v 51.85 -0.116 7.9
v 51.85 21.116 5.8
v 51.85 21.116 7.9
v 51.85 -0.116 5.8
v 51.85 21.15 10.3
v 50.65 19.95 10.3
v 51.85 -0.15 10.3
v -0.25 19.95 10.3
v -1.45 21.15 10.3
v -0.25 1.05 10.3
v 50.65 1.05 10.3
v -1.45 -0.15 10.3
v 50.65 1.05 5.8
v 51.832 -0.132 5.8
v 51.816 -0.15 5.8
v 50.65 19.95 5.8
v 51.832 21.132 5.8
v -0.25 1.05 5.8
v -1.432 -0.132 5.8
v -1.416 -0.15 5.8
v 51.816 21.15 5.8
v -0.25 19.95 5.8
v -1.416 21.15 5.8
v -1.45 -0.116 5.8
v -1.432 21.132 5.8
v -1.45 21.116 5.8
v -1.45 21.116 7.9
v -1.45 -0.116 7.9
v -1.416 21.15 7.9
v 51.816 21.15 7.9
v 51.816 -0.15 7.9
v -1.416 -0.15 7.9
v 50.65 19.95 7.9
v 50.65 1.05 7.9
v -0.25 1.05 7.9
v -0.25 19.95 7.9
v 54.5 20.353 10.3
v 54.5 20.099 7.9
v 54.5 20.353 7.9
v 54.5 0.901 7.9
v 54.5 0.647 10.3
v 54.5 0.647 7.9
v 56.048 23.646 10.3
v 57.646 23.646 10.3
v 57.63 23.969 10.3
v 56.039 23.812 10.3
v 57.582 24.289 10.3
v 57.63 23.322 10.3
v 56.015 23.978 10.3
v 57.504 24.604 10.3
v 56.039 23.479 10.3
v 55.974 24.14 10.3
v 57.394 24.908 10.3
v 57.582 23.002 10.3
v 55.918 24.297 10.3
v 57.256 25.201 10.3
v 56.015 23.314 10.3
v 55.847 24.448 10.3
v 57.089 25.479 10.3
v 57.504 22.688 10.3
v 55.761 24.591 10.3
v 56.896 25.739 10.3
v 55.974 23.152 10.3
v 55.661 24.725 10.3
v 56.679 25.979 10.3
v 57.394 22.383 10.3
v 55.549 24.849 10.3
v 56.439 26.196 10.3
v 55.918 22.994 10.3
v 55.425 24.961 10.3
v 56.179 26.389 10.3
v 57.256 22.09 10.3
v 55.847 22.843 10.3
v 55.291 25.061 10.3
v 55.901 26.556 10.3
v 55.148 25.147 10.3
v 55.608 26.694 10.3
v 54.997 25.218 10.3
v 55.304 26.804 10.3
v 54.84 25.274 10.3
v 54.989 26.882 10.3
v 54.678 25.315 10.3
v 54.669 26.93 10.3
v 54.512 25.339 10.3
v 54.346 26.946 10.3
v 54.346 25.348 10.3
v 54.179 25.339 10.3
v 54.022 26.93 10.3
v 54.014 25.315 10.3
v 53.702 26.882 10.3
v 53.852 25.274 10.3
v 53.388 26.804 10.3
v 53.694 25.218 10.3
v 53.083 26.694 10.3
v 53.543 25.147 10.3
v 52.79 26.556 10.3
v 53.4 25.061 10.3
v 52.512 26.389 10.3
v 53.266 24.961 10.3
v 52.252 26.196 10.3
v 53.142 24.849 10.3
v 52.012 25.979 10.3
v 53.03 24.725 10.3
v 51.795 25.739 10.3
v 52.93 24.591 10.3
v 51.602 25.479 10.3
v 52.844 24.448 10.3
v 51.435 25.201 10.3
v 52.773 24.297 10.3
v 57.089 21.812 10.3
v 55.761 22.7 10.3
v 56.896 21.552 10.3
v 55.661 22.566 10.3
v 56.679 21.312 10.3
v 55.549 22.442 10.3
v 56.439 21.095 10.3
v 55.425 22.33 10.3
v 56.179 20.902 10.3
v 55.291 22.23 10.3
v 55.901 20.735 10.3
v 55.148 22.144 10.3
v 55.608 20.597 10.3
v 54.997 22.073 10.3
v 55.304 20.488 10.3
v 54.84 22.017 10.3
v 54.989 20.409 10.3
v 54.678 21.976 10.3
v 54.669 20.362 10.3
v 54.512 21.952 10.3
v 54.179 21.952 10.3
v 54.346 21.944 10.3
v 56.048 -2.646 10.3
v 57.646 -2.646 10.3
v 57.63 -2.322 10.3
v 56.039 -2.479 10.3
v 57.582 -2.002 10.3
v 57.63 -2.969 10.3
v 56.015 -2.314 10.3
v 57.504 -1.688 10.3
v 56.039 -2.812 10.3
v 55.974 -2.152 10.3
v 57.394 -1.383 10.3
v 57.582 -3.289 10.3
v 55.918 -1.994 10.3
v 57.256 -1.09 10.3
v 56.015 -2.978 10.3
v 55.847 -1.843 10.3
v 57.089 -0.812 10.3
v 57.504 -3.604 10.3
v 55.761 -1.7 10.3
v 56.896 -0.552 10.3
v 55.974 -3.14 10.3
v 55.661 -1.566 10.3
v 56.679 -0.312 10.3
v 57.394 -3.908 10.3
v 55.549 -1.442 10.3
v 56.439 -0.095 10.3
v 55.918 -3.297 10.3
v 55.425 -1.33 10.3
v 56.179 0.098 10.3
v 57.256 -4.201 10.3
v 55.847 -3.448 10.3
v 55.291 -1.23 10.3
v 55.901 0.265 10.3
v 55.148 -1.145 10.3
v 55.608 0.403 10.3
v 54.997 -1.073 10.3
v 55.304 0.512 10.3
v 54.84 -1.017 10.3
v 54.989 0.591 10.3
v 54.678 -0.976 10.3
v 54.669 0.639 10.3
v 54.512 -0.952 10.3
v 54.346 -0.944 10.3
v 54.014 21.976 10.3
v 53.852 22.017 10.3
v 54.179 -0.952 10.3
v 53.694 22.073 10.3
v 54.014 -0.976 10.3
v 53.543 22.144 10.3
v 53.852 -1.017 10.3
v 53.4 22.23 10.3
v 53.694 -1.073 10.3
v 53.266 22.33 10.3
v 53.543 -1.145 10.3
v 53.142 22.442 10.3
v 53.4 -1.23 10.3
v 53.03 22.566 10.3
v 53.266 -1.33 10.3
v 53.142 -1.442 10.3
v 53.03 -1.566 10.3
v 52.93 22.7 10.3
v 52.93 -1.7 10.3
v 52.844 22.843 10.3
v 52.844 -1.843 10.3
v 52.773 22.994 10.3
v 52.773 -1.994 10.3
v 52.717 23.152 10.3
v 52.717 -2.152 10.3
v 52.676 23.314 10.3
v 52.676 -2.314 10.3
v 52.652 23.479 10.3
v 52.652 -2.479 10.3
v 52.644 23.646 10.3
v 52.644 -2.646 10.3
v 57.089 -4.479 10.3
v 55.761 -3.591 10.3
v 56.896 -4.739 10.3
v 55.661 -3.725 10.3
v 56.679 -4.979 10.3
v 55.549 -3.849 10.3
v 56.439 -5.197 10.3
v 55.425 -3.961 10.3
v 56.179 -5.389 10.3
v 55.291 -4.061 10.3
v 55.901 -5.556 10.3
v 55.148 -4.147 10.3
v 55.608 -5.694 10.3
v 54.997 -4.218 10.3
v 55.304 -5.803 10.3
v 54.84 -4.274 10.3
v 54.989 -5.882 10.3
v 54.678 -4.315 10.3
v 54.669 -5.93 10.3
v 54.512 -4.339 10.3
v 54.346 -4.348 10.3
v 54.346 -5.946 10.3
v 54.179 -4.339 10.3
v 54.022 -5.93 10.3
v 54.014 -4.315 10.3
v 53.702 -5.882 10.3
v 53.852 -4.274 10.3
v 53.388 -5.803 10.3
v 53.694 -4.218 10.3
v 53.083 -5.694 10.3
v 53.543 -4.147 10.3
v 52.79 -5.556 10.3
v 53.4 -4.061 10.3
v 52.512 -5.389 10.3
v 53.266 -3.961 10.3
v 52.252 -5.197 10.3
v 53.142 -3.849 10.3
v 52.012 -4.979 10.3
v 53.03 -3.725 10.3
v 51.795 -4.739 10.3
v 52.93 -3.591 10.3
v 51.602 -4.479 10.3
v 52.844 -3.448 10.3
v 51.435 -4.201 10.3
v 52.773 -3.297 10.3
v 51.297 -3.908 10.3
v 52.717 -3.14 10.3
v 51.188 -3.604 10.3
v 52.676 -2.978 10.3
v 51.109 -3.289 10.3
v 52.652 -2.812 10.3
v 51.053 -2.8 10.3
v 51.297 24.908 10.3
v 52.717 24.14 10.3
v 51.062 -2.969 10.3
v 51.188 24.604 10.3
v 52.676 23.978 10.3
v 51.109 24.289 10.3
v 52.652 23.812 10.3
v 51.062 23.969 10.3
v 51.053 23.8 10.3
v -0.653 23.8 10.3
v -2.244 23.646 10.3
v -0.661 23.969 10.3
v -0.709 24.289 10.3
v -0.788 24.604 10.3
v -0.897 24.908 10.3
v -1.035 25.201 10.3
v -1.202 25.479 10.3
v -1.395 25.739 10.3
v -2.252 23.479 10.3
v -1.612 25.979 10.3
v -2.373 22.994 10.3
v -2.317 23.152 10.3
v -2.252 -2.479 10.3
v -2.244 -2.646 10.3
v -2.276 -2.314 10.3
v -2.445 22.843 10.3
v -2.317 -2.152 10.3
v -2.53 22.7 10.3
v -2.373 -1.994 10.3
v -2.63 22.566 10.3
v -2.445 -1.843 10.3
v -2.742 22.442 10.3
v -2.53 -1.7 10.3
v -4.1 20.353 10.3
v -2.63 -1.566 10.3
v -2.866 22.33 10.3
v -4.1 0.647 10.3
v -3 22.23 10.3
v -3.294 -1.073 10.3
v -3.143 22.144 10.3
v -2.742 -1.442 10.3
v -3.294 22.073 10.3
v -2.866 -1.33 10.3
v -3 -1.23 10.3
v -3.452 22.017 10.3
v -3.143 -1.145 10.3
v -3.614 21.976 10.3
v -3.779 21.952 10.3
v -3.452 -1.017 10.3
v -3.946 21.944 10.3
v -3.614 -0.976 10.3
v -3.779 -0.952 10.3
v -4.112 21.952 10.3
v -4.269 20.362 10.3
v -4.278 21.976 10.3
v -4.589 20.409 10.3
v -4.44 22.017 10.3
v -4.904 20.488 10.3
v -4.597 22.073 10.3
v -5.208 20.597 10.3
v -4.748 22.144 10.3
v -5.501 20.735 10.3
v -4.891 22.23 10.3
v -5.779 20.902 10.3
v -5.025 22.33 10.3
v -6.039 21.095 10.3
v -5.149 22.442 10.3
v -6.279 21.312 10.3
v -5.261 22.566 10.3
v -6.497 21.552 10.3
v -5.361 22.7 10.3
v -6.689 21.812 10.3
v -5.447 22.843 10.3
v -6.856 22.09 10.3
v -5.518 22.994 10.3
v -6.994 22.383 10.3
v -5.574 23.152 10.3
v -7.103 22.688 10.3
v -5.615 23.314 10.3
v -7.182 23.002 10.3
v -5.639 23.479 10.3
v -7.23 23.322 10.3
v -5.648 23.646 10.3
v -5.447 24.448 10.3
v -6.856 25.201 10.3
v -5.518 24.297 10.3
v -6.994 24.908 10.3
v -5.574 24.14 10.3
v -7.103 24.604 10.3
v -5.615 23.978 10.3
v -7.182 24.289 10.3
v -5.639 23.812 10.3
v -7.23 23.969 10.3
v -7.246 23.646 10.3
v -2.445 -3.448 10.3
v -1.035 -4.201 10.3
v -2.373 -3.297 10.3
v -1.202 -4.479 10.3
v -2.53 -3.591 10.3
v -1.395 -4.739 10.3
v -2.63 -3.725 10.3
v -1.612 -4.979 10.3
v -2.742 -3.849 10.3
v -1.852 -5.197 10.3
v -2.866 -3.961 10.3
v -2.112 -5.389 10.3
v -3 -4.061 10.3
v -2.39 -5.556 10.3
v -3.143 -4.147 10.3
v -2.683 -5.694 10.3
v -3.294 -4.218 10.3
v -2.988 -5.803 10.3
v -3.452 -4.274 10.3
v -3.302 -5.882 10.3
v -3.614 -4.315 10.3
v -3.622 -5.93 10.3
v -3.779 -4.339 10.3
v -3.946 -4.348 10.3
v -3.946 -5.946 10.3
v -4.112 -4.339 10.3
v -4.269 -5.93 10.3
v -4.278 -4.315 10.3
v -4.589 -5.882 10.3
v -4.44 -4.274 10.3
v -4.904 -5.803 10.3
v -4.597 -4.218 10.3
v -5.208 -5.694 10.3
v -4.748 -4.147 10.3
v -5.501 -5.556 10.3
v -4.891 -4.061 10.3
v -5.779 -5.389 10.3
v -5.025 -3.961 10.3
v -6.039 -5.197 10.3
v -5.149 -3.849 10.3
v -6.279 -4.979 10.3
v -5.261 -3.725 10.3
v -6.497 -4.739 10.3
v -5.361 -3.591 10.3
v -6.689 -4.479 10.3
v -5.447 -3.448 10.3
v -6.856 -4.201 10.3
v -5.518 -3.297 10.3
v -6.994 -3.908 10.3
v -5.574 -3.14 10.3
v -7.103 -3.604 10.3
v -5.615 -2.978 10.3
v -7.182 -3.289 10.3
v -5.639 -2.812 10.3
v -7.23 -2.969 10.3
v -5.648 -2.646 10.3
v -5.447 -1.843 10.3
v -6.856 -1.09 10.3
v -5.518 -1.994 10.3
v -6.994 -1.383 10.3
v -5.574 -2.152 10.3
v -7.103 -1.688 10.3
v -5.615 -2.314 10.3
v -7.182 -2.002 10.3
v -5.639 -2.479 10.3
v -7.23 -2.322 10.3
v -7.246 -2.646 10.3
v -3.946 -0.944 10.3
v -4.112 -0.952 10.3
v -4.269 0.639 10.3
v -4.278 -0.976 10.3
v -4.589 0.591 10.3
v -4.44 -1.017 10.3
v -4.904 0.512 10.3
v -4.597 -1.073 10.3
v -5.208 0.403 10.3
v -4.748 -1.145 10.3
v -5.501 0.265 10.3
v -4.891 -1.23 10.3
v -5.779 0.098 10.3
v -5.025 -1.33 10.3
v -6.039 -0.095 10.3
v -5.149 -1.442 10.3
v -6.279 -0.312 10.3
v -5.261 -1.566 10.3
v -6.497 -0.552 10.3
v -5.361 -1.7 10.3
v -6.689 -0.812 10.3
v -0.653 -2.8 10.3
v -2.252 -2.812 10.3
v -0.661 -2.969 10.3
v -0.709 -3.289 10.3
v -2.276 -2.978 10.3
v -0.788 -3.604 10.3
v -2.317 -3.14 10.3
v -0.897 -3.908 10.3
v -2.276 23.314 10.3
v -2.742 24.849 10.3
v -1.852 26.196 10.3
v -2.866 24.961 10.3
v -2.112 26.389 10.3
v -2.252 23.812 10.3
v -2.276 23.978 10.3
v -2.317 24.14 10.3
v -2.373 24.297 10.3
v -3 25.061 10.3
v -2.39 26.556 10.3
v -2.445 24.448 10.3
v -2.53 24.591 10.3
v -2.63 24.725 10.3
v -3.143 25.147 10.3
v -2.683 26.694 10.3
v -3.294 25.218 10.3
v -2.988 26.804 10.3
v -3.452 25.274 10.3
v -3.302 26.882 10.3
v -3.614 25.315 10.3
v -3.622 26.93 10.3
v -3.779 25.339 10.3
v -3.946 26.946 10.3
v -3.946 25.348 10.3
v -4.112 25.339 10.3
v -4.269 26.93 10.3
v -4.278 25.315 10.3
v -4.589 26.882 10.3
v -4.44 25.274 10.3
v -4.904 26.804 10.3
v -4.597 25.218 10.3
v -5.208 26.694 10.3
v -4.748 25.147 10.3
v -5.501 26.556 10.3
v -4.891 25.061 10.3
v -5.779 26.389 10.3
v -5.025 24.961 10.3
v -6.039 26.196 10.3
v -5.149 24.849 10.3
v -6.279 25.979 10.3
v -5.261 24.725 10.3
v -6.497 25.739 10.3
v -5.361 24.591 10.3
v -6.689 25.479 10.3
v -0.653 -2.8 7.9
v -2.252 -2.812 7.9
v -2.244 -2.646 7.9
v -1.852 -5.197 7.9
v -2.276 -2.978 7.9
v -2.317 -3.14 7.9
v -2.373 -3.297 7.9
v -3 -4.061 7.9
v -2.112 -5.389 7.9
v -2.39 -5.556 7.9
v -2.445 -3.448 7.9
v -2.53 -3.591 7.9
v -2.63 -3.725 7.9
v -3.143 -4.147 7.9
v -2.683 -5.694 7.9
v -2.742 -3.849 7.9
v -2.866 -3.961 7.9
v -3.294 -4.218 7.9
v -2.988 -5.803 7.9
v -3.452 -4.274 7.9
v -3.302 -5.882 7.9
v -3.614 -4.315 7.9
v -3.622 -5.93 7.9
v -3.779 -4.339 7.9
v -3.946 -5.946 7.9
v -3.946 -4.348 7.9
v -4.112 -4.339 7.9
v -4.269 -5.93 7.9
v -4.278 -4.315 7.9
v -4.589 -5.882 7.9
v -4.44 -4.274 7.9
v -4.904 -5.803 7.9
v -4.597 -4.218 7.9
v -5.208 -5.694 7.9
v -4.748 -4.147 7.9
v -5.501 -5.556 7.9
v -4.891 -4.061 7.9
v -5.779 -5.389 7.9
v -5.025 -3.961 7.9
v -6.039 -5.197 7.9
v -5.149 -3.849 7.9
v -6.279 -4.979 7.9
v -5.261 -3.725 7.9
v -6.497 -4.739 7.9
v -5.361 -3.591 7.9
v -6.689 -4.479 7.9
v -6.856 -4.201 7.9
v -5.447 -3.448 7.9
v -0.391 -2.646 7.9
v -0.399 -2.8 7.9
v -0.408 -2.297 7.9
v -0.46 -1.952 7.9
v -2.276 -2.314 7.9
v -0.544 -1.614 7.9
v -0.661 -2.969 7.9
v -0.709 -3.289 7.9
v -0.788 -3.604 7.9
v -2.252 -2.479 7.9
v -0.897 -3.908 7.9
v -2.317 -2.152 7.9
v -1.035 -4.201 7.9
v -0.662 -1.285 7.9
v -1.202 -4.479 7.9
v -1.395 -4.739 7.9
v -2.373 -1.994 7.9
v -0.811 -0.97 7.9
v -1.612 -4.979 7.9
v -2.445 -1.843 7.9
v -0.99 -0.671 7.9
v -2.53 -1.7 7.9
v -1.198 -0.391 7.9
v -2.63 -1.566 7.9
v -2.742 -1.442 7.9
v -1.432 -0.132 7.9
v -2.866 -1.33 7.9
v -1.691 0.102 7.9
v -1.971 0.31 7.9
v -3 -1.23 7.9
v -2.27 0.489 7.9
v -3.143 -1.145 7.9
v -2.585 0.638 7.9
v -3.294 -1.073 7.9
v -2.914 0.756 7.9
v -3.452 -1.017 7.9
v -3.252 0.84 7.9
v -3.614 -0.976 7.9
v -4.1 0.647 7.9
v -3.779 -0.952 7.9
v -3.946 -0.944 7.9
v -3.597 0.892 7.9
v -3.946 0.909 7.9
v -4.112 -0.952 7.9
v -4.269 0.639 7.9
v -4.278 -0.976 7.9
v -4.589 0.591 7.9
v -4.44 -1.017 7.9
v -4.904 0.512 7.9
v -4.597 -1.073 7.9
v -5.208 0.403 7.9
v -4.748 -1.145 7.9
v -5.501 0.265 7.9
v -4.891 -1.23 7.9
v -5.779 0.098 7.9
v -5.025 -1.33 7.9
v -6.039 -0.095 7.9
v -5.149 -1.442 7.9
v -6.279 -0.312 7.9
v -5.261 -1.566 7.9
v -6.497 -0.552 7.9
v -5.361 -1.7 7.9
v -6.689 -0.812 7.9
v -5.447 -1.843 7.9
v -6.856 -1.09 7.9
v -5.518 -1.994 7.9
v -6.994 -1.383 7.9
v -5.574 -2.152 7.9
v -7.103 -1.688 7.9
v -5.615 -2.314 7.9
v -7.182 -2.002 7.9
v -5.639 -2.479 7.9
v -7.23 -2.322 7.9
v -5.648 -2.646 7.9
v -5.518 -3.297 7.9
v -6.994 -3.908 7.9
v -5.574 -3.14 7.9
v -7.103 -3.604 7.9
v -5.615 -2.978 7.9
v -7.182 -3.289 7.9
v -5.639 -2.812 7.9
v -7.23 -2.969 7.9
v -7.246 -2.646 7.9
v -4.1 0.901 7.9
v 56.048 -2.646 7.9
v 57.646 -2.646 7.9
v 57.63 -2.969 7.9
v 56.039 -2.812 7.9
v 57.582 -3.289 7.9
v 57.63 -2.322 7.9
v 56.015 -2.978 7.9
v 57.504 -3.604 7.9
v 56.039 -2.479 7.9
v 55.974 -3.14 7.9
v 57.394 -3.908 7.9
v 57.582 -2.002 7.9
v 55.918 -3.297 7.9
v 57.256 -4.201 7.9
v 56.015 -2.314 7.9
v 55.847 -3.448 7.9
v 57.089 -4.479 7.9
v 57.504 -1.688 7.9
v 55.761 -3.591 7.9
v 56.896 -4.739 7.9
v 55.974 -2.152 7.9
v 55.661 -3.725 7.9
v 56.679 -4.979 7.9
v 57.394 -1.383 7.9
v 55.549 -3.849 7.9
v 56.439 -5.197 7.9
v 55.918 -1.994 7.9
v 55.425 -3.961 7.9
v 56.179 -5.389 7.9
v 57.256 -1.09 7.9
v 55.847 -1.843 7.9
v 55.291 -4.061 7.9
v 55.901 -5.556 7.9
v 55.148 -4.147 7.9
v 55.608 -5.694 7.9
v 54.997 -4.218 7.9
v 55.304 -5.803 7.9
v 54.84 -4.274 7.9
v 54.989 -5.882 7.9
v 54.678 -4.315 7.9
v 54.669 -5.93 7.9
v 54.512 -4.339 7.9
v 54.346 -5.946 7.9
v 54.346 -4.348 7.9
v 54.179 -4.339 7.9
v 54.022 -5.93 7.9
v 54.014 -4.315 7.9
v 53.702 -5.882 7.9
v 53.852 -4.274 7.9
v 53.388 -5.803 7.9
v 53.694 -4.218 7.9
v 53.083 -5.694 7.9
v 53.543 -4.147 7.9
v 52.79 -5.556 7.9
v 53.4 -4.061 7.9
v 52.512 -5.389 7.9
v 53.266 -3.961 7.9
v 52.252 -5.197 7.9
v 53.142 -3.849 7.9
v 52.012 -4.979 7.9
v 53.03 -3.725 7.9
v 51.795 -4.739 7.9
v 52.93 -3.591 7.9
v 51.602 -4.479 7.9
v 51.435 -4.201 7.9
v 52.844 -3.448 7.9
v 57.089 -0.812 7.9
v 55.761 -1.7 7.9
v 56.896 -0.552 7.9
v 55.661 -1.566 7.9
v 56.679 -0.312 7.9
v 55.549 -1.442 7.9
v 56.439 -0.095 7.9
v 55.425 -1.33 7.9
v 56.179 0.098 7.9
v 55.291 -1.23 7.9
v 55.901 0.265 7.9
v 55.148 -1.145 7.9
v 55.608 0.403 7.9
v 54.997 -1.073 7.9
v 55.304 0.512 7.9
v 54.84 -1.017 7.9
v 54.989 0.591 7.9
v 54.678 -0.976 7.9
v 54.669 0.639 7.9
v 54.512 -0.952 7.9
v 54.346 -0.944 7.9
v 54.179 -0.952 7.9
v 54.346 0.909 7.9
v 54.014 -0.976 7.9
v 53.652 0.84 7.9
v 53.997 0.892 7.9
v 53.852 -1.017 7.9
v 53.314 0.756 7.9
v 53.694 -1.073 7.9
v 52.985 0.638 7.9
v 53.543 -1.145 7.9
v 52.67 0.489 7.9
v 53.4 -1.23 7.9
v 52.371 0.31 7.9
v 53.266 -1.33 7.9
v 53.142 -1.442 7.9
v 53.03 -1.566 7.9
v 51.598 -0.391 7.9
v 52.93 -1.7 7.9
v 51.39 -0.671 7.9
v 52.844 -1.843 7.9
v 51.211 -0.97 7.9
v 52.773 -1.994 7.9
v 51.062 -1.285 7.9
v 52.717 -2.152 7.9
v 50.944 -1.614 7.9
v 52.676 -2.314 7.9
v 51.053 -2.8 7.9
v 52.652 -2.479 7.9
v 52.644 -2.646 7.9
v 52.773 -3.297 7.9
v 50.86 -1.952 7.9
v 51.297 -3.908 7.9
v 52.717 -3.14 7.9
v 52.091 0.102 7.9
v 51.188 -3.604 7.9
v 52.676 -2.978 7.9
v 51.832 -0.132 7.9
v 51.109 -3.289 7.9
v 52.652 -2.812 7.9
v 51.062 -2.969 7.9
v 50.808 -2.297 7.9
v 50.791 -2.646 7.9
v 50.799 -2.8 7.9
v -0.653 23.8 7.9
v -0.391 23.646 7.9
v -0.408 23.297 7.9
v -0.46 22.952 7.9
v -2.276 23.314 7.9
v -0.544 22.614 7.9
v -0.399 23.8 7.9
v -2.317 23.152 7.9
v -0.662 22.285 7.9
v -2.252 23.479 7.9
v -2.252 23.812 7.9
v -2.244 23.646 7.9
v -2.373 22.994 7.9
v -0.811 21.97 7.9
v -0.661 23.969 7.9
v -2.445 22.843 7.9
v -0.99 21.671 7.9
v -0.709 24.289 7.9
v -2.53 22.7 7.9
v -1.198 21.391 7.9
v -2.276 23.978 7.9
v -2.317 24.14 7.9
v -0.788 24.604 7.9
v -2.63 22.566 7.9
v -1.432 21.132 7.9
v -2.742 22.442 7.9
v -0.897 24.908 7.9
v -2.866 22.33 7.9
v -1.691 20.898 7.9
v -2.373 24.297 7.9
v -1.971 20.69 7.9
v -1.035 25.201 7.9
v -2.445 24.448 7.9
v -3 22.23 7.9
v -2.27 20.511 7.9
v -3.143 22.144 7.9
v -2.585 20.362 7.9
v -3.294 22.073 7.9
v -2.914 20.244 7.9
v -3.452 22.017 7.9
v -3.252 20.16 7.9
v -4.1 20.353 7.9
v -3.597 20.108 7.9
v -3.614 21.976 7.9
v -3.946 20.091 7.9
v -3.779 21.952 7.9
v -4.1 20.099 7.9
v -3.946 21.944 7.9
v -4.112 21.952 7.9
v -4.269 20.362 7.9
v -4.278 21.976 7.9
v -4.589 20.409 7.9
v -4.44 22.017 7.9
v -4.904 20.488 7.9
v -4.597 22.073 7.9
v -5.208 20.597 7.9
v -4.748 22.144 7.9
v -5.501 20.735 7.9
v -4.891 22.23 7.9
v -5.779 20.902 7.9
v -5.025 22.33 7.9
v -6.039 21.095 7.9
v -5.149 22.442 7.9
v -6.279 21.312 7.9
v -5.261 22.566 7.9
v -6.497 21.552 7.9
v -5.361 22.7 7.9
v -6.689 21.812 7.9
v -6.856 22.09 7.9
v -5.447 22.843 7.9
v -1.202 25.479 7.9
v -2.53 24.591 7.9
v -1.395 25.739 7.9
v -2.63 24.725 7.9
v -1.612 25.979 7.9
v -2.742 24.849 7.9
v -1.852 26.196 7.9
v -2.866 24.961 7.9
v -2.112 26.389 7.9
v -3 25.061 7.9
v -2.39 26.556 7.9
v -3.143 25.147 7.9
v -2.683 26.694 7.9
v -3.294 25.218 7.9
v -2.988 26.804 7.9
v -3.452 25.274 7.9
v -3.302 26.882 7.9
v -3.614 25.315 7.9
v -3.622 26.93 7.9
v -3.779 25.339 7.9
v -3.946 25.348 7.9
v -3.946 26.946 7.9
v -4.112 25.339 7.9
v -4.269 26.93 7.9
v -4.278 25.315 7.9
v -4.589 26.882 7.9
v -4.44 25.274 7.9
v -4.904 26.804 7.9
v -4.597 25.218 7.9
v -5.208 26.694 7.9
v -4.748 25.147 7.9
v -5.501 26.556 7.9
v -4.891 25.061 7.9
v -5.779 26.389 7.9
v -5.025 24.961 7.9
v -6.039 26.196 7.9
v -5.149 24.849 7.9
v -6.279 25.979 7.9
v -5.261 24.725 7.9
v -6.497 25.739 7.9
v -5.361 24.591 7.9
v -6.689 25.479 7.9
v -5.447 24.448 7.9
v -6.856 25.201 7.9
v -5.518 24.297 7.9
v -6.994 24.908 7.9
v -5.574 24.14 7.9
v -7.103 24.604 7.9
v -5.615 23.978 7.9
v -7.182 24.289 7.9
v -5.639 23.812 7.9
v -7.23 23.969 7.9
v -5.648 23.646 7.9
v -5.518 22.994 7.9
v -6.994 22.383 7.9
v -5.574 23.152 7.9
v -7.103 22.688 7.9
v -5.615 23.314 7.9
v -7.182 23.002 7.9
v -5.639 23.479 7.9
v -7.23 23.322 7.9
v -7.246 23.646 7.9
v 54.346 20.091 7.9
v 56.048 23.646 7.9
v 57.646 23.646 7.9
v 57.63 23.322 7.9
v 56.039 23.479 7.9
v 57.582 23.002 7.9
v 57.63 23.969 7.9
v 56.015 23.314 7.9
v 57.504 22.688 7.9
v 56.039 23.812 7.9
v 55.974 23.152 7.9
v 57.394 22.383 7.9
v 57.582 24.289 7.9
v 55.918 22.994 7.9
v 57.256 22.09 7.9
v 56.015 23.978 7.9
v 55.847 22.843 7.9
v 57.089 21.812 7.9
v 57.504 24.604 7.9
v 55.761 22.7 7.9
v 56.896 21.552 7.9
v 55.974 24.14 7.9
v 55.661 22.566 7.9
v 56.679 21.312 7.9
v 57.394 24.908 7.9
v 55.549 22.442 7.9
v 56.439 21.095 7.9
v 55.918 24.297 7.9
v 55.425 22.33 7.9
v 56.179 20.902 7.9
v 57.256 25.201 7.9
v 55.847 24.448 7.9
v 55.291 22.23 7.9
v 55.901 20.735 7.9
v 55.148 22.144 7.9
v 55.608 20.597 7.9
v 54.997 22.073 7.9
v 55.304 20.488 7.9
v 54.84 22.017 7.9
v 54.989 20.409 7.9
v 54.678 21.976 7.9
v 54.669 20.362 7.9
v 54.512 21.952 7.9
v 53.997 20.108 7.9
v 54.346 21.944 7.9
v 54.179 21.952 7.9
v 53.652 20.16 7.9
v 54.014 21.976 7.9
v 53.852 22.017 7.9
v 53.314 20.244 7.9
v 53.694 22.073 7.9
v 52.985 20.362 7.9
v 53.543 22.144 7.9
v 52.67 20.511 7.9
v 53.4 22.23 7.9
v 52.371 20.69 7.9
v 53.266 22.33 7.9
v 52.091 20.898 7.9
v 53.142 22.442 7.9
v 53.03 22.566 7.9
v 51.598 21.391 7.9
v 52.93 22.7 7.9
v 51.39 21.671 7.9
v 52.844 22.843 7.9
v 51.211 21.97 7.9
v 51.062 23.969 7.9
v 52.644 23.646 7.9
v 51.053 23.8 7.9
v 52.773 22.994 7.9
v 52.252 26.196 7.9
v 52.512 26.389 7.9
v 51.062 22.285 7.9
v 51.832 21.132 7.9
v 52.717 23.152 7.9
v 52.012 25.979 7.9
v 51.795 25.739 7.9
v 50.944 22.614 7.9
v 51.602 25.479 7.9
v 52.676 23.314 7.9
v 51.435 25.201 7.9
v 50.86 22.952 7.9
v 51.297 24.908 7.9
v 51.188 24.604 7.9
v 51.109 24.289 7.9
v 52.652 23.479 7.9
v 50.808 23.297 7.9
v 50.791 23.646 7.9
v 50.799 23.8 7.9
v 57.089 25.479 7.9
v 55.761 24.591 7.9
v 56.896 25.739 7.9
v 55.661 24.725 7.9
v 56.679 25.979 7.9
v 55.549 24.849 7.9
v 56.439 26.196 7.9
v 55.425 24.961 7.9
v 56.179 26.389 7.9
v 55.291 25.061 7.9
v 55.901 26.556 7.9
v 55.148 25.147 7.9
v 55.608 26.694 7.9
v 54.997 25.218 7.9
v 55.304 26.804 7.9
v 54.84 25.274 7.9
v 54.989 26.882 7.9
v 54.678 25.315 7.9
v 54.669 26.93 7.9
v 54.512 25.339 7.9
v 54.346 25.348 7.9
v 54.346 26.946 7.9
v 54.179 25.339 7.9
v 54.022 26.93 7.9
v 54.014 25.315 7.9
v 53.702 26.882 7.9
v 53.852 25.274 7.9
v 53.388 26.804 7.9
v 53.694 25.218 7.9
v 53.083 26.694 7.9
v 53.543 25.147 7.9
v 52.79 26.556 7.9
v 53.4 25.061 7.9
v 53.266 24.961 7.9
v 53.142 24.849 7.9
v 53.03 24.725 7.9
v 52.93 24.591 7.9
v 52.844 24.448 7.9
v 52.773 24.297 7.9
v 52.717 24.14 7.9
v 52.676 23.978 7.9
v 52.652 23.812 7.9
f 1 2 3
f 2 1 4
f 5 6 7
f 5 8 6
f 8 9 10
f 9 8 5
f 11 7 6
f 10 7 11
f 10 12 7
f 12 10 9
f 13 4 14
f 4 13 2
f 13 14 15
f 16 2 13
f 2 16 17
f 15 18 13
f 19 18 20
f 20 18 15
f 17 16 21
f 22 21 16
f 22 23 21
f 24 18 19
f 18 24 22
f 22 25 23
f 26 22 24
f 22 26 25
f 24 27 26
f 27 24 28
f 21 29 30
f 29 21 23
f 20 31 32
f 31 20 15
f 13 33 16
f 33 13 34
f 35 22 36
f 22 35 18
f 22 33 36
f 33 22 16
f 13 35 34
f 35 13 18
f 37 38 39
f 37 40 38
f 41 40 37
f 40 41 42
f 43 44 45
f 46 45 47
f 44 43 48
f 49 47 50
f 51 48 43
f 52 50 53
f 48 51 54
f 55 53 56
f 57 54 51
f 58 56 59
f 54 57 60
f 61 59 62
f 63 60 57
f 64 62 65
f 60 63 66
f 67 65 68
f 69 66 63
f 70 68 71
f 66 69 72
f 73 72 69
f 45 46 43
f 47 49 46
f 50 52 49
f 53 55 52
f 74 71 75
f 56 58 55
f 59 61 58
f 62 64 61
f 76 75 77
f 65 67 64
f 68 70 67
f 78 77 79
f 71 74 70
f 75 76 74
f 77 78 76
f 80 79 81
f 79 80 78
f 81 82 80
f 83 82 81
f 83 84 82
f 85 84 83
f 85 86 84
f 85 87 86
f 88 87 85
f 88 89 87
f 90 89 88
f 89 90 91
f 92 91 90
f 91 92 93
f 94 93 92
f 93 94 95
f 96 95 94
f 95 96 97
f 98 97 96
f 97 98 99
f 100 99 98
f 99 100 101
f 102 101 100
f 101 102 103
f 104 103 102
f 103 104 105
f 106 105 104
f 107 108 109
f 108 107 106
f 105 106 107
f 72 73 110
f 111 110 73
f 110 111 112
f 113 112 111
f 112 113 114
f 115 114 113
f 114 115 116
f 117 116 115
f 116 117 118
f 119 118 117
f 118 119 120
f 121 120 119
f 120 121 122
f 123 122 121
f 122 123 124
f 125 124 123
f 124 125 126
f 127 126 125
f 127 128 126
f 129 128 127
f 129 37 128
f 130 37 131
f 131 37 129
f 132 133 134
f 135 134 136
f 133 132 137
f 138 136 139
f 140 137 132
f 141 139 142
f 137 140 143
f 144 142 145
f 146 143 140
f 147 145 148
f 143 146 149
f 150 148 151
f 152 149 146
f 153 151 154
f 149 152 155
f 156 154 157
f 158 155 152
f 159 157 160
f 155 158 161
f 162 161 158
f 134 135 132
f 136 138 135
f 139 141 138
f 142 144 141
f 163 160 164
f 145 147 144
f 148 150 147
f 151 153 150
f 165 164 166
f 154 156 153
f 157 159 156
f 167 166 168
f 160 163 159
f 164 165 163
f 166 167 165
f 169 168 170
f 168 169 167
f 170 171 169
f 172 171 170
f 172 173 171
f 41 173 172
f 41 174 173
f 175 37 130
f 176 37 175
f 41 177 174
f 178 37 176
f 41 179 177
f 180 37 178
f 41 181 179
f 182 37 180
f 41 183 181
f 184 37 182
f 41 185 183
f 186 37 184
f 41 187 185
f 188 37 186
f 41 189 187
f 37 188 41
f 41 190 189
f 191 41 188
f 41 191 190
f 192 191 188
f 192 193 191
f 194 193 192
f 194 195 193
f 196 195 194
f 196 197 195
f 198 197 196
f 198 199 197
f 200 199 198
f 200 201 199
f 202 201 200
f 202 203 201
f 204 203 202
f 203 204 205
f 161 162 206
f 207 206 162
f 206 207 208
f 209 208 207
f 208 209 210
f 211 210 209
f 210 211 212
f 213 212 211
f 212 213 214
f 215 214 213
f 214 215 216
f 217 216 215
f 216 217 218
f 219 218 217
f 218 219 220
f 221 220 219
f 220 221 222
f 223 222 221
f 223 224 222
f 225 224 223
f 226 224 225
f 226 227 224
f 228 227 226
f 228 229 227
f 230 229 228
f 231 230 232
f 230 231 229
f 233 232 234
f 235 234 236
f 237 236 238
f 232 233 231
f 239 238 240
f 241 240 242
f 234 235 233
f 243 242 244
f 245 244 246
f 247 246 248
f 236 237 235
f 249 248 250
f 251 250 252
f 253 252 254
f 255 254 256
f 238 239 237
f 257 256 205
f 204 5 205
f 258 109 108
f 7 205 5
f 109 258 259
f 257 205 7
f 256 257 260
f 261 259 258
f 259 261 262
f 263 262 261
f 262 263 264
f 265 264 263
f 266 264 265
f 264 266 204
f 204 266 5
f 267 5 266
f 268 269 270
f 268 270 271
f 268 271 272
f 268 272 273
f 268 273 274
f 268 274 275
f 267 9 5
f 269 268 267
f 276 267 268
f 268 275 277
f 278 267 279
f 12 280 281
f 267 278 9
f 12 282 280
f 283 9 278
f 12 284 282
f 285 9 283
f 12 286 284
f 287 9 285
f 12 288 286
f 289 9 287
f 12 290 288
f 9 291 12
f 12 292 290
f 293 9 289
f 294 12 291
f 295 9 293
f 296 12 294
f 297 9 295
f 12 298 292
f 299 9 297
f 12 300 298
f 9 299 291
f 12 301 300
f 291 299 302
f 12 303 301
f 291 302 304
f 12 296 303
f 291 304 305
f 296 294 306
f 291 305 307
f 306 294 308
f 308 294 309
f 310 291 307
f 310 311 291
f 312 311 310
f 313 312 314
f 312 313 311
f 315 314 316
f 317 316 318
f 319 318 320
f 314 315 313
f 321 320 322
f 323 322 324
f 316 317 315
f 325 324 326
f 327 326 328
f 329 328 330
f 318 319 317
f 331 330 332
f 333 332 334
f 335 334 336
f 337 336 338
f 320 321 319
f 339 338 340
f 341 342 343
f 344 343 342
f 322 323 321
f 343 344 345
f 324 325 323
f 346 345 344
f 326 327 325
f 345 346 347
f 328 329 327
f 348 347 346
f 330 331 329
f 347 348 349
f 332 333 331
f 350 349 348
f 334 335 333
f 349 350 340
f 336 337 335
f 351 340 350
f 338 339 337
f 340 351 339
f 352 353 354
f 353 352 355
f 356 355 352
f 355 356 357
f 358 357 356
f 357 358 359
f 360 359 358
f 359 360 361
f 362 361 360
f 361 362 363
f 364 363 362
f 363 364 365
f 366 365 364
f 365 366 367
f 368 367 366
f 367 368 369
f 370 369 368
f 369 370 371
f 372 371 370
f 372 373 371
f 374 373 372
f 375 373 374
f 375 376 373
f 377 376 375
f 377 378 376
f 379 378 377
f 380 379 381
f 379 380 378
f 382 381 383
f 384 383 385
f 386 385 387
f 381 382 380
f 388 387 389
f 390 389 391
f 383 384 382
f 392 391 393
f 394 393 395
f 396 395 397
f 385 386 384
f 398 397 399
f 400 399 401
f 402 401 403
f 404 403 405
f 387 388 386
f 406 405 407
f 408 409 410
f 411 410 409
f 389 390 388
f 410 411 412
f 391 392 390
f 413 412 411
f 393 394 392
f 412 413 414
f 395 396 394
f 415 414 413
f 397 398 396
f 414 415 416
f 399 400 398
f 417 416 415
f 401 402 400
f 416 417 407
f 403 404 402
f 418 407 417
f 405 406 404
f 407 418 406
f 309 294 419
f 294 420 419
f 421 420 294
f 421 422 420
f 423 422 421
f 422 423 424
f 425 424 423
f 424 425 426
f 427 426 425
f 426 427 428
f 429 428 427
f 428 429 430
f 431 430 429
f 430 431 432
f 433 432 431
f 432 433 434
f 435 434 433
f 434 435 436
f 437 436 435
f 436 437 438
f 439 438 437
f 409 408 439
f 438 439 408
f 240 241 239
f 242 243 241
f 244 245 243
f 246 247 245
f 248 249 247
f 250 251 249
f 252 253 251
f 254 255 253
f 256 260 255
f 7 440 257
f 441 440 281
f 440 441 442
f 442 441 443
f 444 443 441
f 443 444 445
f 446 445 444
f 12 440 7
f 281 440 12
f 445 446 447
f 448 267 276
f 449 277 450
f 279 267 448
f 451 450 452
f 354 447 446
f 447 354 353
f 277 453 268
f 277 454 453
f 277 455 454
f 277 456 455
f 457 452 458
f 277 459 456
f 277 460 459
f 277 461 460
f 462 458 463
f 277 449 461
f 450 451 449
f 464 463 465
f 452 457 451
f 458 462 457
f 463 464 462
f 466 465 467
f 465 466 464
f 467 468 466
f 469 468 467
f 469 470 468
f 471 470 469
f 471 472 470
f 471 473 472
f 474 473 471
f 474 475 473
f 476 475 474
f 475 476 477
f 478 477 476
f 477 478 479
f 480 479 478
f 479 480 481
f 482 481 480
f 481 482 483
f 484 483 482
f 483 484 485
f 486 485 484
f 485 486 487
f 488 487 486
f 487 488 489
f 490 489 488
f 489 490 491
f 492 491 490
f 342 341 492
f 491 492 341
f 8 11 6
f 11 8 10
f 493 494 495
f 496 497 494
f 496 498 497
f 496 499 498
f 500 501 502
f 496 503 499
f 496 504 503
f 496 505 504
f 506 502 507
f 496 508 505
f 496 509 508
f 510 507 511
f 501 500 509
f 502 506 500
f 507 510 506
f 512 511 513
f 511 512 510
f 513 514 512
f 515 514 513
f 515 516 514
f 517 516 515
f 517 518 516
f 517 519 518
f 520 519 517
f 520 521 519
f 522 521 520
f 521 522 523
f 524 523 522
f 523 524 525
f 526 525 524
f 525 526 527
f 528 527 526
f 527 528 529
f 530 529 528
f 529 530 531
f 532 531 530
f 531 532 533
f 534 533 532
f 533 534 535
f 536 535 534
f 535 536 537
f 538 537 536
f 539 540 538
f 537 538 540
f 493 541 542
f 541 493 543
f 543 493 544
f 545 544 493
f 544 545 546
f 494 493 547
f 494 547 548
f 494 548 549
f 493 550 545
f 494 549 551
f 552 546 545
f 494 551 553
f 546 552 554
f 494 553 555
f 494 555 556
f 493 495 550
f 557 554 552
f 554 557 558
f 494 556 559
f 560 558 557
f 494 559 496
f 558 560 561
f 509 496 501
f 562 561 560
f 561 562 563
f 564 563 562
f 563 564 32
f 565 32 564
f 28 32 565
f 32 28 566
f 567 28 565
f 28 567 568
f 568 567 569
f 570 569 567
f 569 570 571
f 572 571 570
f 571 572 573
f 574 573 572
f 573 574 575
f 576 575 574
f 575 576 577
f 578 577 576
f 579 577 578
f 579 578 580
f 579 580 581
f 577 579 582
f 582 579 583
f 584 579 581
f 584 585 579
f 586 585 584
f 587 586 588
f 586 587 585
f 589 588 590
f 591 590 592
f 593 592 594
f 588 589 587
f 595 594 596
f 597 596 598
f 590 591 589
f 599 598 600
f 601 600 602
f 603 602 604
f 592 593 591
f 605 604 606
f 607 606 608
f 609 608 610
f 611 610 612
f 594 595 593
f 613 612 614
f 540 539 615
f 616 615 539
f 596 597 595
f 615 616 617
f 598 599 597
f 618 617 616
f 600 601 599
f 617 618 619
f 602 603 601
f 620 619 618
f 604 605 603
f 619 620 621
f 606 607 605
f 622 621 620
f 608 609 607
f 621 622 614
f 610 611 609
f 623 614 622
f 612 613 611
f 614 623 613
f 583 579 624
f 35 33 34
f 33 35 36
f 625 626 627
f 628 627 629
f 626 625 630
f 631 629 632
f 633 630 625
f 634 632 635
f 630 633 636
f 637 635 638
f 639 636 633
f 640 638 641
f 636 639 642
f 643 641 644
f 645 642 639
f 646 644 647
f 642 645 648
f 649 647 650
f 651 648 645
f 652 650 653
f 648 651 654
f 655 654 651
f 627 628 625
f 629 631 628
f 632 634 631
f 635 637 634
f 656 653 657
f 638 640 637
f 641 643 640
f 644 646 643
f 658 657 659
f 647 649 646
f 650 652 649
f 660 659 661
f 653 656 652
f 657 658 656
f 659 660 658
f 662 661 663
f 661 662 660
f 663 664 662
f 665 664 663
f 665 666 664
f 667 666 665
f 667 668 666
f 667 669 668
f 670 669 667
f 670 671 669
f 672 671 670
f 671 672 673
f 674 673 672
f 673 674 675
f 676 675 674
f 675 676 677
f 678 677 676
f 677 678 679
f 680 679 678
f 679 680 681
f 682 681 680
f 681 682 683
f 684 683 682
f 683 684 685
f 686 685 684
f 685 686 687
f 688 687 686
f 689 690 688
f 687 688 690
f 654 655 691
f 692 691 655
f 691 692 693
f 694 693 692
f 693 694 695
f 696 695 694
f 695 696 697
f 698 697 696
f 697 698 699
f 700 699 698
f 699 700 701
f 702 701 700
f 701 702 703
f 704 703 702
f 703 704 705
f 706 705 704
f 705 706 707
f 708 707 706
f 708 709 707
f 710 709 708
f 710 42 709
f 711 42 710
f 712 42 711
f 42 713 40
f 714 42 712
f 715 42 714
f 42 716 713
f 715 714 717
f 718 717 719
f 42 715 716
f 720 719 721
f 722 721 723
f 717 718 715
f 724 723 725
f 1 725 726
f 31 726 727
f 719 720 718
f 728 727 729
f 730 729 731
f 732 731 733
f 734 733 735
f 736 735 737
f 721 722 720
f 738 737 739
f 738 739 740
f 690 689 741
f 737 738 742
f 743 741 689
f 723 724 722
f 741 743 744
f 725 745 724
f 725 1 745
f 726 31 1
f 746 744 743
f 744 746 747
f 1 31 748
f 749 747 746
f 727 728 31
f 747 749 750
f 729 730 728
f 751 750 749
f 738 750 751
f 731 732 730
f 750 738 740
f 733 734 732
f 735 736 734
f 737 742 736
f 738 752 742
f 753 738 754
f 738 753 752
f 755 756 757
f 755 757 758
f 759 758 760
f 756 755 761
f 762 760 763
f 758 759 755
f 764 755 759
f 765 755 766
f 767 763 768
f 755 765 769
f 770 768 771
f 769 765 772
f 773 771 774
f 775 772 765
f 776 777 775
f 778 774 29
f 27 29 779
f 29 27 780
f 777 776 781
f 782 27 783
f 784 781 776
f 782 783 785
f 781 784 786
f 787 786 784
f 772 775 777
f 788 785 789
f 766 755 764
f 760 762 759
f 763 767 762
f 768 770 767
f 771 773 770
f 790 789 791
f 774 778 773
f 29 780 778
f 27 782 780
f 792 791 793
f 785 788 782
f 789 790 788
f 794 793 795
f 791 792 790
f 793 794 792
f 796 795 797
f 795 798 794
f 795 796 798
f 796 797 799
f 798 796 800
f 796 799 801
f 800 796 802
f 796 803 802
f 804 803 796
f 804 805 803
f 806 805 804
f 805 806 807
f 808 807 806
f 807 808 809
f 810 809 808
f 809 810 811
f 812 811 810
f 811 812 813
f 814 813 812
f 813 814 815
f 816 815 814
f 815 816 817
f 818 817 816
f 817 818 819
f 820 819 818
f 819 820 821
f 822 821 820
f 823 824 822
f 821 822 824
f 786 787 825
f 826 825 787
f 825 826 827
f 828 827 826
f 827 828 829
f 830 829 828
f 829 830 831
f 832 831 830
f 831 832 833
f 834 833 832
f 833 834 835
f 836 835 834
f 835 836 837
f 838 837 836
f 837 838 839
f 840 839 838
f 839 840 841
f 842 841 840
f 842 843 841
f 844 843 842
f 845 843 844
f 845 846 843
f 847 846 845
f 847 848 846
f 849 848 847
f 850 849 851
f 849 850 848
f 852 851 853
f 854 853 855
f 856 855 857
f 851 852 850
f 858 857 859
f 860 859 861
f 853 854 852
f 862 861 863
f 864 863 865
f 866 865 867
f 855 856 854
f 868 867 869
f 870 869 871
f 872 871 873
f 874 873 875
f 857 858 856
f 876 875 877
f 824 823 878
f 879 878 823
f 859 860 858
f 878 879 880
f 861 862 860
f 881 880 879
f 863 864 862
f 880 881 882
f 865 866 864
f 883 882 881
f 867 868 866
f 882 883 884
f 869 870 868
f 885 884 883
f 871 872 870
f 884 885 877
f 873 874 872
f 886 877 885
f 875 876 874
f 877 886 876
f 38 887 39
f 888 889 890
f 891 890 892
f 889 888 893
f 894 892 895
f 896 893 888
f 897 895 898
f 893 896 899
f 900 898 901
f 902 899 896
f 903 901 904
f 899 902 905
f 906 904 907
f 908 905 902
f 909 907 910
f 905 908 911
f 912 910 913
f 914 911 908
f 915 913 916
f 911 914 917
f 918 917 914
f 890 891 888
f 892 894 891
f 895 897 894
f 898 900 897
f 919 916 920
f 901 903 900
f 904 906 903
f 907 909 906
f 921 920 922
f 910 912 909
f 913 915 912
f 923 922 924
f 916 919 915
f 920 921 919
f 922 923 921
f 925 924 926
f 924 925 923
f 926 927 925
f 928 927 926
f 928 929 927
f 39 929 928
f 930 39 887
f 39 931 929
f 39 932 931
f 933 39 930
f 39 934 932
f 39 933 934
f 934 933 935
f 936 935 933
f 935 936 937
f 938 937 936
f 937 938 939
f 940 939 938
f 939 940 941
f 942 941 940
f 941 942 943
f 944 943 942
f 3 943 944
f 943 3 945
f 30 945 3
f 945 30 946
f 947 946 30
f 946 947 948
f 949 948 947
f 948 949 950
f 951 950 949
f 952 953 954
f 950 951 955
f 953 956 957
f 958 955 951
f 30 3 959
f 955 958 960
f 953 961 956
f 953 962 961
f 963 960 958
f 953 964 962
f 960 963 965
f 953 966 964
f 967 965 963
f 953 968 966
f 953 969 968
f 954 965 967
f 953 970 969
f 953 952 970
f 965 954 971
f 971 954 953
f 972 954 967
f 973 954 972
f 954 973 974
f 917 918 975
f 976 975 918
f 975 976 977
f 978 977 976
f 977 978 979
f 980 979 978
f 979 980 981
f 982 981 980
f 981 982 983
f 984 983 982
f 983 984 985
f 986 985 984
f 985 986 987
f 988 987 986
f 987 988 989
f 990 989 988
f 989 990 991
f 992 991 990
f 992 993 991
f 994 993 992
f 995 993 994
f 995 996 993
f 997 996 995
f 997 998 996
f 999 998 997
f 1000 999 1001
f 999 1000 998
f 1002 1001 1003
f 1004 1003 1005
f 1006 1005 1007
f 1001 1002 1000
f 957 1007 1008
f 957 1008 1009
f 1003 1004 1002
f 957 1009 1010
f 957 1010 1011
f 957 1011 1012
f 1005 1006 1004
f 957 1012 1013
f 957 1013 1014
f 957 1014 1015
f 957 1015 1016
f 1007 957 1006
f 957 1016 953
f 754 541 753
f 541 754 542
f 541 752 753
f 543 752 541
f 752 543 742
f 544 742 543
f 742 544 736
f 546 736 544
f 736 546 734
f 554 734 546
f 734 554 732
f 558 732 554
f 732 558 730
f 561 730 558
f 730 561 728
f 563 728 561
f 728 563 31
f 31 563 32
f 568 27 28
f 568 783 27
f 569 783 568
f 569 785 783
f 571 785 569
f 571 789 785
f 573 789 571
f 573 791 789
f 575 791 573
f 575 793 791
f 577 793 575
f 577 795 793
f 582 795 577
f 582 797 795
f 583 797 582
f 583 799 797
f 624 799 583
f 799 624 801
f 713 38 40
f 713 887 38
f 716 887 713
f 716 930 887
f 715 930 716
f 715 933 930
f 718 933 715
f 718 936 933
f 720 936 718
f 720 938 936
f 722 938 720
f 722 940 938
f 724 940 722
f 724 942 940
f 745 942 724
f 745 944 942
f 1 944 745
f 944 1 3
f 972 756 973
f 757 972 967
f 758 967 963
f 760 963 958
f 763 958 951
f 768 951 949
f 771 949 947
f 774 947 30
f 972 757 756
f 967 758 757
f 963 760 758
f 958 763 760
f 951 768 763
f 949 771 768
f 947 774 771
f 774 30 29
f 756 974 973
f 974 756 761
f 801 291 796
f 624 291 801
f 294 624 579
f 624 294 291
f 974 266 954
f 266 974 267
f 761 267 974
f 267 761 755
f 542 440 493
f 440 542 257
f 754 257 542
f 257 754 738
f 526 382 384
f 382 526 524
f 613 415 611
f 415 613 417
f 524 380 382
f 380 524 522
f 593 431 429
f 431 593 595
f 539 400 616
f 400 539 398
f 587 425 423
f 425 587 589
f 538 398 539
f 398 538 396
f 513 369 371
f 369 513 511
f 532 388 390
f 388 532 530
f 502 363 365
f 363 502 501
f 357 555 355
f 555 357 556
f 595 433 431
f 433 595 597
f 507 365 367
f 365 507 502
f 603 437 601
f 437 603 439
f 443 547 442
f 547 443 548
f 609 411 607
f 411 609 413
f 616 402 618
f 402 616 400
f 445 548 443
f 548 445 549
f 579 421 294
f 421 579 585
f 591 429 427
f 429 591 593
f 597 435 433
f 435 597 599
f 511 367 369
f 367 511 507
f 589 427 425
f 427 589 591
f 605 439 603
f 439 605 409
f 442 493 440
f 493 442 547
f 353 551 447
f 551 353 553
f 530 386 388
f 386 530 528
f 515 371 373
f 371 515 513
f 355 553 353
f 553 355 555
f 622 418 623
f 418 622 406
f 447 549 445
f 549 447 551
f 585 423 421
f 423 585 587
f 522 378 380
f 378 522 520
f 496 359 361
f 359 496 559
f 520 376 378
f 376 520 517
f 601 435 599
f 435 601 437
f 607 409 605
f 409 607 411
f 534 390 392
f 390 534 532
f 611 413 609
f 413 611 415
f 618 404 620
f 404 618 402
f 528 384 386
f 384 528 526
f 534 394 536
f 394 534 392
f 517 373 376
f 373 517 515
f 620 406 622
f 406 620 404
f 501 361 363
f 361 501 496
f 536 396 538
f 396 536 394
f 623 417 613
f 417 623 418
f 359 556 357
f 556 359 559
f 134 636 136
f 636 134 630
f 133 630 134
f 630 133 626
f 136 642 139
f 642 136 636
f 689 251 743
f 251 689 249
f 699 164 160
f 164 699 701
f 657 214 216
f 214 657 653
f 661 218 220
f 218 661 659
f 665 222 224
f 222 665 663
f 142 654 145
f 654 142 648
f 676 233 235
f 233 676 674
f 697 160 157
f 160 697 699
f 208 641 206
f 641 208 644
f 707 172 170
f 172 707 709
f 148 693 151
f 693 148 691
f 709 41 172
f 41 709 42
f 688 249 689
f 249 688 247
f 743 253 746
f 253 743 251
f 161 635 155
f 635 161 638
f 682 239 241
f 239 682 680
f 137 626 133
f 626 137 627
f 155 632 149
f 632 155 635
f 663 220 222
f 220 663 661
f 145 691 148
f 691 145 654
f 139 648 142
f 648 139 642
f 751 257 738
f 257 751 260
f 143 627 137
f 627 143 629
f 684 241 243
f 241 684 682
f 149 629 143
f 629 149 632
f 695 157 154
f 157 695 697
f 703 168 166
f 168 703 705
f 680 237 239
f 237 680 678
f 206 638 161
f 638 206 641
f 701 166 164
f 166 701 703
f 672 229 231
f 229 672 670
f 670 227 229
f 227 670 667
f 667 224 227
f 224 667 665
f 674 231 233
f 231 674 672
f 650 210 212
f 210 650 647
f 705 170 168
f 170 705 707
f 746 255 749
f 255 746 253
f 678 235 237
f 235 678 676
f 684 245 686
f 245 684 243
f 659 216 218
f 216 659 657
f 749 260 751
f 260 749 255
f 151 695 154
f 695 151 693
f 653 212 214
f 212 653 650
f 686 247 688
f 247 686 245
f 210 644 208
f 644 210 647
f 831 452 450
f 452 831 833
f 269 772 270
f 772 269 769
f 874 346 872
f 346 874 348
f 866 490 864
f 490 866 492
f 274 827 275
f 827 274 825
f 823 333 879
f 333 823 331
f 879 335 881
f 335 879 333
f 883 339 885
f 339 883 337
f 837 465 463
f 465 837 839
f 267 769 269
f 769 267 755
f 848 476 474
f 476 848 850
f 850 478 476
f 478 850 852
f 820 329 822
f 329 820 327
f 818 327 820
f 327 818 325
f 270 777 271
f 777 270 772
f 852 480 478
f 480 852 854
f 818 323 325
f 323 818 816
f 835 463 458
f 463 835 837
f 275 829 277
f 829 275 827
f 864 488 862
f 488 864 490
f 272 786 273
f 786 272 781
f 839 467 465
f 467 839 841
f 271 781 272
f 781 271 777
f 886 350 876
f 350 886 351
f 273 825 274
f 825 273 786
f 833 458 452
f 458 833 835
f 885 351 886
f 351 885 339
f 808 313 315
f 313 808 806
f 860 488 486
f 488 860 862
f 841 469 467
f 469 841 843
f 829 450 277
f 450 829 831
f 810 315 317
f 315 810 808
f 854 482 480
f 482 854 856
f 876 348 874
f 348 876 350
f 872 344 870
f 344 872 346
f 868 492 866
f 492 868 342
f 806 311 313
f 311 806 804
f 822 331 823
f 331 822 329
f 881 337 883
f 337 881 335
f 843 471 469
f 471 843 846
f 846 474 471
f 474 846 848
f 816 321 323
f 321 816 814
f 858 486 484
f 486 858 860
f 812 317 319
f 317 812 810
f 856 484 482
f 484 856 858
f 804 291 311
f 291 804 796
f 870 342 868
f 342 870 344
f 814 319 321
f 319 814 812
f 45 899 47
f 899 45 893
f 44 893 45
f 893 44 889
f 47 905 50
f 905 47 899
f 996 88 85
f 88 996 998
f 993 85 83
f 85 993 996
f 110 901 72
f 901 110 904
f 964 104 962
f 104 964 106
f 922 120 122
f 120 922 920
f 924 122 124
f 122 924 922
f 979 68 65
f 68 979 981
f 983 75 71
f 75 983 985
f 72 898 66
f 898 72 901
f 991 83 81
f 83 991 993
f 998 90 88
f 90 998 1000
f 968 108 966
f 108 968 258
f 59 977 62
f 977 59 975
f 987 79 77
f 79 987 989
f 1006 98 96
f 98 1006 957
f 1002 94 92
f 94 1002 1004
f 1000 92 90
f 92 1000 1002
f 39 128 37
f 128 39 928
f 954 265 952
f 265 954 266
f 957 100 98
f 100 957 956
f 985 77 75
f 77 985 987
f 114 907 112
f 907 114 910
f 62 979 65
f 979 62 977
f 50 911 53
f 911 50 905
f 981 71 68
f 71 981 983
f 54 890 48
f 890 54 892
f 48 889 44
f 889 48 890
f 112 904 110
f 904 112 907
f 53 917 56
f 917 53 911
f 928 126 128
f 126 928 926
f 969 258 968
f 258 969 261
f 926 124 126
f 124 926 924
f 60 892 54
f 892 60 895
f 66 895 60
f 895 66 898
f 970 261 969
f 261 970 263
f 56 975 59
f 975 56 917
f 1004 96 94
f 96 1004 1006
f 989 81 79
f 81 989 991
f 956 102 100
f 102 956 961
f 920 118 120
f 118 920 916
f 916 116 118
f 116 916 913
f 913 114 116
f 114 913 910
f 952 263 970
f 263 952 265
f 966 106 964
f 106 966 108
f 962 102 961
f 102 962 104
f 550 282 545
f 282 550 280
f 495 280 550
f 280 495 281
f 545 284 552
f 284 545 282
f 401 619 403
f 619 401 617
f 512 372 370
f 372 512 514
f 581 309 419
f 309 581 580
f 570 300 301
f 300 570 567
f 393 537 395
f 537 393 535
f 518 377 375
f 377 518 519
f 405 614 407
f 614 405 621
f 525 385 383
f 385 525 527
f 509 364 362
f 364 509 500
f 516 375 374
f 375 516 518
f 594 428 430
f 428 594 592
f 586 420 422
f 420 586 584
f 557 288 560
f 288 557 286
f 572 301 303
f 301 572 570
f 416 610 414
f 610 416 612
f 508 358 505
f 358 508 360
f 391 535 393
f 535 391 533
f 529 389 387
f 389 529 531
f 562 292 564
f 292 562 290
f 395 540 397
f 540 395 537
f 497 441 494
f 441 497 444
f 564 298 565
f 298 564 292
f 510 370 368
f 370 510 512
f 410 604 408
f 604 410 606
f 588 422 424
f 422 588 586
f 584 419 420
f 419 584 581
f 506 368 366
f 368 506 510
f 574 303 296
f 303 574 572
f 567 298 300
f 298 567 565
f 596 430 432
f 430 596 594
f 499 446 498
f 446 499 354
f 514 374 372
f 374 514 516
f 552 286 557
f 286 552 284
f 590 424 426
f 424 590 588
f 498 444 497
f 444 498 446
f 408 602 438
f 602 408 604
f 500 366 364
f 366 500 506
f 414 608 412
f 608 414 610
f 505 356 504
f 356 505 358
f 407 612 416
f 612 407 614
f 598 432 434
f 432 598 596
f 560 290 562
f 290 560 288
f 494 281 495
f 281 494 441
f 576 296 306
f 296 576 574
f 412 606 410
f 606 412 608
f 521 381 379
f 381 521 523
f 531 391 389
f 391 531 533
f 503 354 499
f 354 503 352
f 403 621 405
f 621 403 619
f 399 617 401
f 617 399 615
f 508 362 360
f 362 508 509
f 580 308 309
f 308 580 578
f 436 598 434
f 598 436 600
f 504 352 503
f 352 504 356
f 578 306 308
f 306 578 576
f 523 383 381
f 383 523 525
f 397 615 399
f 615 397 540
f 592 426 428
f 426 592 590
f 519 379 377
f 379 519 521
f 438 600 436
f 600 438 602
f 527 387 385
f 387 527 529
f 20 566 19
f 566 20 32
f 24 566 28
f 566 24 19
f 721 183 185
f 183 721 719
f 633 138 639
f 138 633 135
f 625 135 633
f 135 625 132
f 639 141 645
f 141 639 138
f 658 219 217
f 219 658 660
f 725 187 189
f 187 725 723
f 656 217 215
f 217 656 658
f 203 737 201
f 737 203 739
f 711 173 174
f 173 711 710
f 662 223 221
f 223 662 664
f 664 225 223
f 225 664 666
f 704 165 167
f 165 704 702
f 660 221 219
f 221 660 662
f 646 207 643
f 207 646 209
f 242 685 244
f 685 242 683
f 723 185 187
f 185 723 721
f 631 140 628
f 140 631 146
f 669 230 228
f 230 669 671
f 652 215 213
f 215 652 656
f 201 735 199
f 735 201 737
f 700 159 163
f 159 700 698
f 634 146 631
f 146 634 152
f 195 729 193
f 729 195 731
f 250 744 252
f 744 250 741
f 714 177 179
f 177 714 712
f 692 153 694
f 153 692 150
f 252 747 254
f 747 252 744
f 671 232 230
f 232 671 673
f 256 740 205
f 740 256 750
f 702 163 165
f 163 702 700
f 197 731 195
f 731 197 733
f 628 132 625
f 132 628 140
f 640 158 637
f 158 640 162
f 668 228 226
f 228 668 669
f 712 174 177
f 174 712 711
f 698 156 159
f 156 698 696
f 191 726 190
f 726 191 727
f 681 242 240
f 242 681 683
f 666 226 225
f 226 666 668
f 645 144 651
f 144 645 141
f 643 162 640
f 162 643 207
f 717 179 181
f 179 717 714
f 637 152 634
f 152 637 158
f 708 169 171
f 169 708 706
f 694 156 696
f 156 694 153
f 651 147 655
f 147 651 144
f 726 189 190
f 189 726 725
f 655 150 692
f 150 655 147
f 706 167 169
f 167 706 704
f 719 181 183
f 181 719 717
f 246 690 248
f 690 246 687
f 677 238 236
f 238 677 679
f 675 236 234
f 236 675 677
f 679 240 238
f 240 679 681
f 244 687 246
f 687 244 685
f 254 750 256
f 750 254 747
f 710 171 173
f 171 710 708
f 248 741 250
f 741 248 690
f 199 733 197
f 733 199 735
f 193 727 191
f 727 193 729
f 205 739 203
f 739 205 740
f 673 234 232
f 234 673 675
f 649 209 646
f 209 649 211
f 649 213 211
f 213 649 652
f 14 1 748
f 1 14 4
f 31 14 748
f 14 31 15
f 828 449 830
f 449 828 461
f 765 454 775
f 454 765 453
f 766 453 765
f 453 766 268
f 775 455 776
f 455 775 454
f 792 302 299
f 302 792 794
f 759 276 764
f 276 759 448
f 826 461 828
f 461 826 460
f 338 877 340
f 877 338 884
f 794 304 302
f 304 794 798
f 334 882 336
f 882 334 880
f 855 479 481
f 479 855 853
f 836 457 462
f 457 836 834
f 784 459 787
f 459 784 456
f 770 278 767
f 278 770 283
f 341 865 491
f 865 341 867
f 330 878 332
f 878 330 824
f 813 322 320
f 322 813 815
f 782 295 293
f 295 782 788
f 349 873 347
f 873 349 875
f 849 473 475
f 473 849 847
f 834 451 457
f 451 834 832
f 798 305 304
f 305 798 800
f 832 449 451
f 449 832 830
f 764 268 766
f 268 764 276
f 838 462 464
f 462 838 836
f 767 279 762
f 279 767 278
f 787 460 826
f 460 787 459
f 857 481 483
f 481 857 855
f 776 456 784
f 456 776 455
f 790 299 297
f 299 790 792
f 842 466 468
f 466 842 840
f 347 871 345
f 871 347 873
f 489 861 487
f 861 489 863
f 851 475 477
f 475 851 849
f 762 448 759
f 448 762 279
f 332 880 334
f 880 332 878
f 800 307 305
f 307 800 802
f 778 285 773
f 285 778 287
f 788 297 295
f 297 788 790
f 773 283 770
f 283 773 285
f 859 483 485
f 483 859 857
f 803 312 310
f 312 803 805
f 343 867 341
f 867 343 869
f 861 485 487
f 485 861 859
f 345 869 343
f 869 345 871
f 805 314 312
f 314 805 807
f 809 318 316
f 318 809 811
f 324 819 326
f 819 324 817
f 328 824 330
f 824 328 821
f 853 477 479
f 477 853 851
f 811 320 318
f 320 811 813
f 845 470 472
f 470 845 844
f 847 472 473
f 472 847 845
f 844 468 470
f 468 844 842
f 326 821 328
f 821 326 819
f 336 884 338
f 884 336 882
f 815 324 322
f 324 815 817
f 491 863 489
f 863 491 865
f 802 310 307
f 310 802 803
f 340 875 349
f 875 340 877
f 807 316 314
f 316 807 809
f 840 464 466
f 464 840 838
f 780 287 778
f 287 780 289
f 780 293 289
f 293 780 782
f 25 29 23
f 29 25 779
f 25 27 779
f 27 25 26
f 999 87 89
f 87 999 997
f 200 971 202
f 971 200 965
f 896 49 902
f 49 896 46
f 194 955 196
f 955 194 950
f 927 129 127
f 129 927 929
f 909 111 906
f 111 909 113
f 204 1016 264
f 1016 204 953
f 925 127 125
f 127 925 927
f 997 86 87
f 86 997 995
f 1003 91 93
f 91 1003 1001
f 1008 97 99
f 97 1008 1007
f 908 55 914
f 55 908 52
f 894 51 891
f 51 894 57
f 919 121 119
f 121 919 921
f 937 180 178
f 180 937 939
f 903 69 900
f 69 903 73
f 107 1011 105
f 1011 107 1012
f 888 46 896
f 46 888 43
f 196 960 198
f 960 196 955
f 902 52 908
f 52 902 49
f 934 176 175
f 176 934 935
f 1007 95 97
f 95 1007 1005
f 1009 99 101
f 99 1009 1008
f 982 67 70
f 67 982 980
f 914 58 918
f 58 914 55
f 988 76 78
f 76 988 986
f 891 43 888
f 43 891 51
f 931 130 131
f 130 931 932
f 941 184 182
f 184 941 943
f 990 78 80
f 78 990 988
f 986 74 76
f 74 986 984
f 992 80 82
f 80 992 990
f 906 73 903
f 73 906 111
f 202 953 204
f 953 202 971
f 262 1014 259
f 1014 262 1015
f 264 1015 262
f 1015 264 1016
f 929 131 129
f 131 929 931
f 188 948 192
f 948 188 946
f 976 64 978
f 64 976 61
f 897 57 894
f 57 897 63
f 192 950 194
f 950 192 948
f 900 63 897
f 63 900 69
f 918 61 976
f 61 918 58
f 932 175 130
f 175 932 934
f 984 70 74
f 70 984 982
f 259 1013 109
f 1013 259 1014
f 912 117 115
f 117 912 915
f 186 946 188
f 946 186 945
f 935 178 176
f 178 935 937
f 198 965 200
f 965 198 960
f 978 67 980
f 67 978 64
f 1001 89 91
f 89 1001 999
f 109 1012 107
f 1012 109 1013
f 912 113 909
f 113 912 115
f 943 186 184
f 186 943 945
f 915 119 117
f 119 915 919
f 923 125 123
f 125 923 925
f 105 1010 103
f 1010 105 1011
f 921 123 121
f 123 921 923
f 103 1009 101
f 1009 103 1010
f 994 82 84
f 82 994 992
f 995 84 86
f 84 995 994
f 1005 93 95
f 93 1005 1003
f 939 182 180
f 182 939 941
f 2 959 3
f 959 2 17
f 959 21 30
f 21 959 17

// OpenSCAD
// body lid
difference() {
  union() {
    // body lid (lid_plate)
    multmatrix([[1, 0, 0, 25.2], [0, 1, 0, 10.5], [0, 0, 1, 7.9], [0, 0, 0, 1]]) translate([-29.3, -13.3, 0]) cube([58.6, 26.6, 2.4]);
    // add lid_lip (lip)
    multmatrix([[1, 0, 0, 25.2], [0, 1, 0, 10.5], [0, 0, 1, 5.8], [0, 0, 0, 1]]) difference() { translate([-26.65, -10.65, 0]) cube([53.3, 21.3, 4.5]); translate([0, 0, -1]) translate([-25.45, -9.45, 0]) cube([50.9, 18.9, 6.5]); }
    // add boss_1_pad (pad)
    multmatrix([[1, 0, 0, -3.945584], [0, 1, 0, -2.645584], [0, 0, 1, 7.9], [0, 0, 0, 1]]) cylinder(h=2.4, d=6.6, $fn=64);
    // add boss_2_pad (pad)
    multmatrix([[1, 0, 0, 54.345584], [0, 1, 0, -2.645584], [0, 0, 1, 7.9], [0, 0, 0, 1]]) cylinder(h=2.4, d=6.6, $fn=64);
    // add boss_3_pad (pad)
    multmatrix([[1, 0, 0, -3.945584], [0, 1, 0, 23.645584], [0, 0, 1, 7.9], [0, 0, 0, 1]]) cylinder(h=2.4, d=6.6, $fn=64);
    // add boss_4_pad (pad)
    multmatrix([[1, 0, 0, 54.345584], [0, 1, 0, 23.645584], [0, 0, 1, 7.9], [0, 0, 0, 1]]) cylinder(h=2.4, d=6.6, $fn=64);
  }
  // cut boss_1_lid_hole (screw_hole)
  multmatrix([[1, 0, 0, -3.945584], [0, 1, 0, -2.645584], [0, 0, 1, 6.9], [0, 0, 0, 1]]) cylinder(h=4.4, d=3.4041, $fn=64);
  // cut boss_1_lip_notch (lip_notch)
  multmatrix([[1, 0, 0, -3.945584], [0, 1, 0, -2.645584], [0, 0, 1, 4.8], [0, 0, 0, 1]]) cylinder(h=3.1, d=7.108563, $fn=64);
  // cut boss_2_lid_hole (screw_hole)
  multmatrix([[1, 0, 0, 54.345584], [0, 1, 0, -2.645584], [0, 0, 1, 6.9], [0, 0, 0, 1]]) cylinder(h=4.4, d=3.4041, $fn=64);
  // cut boss_2_lip_notch (lip_notch)
  multmatrix([[1, 0, 0, 54.345584], [0, 1, 0, -2.645584], [0, 0, 1, 4.8], [0, 0, 0, 1]]) cylinder(h=3.1, d=7.108563, $fn=64);
  // cut boss_3_lid_hole (screw_hole)
  multmatrix([[1, 0, 0, -3.945584], [0, 1, 0, 23.645584], [0, 0, 1, 6.9], [0, 0, 0, 1]]) cylinder(h=4.4, d=3.4041, $fn=64);
  // cut boss_3_lip_notch (lip_notch)
  multmatrix([[1, 0, 0, -3.945584], [0, 1, 0, 23.645584], [0, 0, 1, 4.8], [0, 0, 0, 1]]) cylinder(h=3.1, d=7.108563, $fn=64);
  // cut boss_4_lid_hole (screw_hole)
  multmatrix([[1, 0, 0, 54.345584], [0, 1, 0, 23.645584], [0, 0, 1, 6.9], [0, 0, 0, 1]]) cylinder(h=4.4, d=3.4041, $fn=64);
  // cut boss_4_lip_notch (lip_notch)
  multmatrix([[1, 0, 0, 54.345584], [0, 1, 0, 23.645584], [0, 0, 1, 4.8], [0, 0, 0, 1]]) cylinder(h=3.1, d=7.108563, $fn=64);
}
